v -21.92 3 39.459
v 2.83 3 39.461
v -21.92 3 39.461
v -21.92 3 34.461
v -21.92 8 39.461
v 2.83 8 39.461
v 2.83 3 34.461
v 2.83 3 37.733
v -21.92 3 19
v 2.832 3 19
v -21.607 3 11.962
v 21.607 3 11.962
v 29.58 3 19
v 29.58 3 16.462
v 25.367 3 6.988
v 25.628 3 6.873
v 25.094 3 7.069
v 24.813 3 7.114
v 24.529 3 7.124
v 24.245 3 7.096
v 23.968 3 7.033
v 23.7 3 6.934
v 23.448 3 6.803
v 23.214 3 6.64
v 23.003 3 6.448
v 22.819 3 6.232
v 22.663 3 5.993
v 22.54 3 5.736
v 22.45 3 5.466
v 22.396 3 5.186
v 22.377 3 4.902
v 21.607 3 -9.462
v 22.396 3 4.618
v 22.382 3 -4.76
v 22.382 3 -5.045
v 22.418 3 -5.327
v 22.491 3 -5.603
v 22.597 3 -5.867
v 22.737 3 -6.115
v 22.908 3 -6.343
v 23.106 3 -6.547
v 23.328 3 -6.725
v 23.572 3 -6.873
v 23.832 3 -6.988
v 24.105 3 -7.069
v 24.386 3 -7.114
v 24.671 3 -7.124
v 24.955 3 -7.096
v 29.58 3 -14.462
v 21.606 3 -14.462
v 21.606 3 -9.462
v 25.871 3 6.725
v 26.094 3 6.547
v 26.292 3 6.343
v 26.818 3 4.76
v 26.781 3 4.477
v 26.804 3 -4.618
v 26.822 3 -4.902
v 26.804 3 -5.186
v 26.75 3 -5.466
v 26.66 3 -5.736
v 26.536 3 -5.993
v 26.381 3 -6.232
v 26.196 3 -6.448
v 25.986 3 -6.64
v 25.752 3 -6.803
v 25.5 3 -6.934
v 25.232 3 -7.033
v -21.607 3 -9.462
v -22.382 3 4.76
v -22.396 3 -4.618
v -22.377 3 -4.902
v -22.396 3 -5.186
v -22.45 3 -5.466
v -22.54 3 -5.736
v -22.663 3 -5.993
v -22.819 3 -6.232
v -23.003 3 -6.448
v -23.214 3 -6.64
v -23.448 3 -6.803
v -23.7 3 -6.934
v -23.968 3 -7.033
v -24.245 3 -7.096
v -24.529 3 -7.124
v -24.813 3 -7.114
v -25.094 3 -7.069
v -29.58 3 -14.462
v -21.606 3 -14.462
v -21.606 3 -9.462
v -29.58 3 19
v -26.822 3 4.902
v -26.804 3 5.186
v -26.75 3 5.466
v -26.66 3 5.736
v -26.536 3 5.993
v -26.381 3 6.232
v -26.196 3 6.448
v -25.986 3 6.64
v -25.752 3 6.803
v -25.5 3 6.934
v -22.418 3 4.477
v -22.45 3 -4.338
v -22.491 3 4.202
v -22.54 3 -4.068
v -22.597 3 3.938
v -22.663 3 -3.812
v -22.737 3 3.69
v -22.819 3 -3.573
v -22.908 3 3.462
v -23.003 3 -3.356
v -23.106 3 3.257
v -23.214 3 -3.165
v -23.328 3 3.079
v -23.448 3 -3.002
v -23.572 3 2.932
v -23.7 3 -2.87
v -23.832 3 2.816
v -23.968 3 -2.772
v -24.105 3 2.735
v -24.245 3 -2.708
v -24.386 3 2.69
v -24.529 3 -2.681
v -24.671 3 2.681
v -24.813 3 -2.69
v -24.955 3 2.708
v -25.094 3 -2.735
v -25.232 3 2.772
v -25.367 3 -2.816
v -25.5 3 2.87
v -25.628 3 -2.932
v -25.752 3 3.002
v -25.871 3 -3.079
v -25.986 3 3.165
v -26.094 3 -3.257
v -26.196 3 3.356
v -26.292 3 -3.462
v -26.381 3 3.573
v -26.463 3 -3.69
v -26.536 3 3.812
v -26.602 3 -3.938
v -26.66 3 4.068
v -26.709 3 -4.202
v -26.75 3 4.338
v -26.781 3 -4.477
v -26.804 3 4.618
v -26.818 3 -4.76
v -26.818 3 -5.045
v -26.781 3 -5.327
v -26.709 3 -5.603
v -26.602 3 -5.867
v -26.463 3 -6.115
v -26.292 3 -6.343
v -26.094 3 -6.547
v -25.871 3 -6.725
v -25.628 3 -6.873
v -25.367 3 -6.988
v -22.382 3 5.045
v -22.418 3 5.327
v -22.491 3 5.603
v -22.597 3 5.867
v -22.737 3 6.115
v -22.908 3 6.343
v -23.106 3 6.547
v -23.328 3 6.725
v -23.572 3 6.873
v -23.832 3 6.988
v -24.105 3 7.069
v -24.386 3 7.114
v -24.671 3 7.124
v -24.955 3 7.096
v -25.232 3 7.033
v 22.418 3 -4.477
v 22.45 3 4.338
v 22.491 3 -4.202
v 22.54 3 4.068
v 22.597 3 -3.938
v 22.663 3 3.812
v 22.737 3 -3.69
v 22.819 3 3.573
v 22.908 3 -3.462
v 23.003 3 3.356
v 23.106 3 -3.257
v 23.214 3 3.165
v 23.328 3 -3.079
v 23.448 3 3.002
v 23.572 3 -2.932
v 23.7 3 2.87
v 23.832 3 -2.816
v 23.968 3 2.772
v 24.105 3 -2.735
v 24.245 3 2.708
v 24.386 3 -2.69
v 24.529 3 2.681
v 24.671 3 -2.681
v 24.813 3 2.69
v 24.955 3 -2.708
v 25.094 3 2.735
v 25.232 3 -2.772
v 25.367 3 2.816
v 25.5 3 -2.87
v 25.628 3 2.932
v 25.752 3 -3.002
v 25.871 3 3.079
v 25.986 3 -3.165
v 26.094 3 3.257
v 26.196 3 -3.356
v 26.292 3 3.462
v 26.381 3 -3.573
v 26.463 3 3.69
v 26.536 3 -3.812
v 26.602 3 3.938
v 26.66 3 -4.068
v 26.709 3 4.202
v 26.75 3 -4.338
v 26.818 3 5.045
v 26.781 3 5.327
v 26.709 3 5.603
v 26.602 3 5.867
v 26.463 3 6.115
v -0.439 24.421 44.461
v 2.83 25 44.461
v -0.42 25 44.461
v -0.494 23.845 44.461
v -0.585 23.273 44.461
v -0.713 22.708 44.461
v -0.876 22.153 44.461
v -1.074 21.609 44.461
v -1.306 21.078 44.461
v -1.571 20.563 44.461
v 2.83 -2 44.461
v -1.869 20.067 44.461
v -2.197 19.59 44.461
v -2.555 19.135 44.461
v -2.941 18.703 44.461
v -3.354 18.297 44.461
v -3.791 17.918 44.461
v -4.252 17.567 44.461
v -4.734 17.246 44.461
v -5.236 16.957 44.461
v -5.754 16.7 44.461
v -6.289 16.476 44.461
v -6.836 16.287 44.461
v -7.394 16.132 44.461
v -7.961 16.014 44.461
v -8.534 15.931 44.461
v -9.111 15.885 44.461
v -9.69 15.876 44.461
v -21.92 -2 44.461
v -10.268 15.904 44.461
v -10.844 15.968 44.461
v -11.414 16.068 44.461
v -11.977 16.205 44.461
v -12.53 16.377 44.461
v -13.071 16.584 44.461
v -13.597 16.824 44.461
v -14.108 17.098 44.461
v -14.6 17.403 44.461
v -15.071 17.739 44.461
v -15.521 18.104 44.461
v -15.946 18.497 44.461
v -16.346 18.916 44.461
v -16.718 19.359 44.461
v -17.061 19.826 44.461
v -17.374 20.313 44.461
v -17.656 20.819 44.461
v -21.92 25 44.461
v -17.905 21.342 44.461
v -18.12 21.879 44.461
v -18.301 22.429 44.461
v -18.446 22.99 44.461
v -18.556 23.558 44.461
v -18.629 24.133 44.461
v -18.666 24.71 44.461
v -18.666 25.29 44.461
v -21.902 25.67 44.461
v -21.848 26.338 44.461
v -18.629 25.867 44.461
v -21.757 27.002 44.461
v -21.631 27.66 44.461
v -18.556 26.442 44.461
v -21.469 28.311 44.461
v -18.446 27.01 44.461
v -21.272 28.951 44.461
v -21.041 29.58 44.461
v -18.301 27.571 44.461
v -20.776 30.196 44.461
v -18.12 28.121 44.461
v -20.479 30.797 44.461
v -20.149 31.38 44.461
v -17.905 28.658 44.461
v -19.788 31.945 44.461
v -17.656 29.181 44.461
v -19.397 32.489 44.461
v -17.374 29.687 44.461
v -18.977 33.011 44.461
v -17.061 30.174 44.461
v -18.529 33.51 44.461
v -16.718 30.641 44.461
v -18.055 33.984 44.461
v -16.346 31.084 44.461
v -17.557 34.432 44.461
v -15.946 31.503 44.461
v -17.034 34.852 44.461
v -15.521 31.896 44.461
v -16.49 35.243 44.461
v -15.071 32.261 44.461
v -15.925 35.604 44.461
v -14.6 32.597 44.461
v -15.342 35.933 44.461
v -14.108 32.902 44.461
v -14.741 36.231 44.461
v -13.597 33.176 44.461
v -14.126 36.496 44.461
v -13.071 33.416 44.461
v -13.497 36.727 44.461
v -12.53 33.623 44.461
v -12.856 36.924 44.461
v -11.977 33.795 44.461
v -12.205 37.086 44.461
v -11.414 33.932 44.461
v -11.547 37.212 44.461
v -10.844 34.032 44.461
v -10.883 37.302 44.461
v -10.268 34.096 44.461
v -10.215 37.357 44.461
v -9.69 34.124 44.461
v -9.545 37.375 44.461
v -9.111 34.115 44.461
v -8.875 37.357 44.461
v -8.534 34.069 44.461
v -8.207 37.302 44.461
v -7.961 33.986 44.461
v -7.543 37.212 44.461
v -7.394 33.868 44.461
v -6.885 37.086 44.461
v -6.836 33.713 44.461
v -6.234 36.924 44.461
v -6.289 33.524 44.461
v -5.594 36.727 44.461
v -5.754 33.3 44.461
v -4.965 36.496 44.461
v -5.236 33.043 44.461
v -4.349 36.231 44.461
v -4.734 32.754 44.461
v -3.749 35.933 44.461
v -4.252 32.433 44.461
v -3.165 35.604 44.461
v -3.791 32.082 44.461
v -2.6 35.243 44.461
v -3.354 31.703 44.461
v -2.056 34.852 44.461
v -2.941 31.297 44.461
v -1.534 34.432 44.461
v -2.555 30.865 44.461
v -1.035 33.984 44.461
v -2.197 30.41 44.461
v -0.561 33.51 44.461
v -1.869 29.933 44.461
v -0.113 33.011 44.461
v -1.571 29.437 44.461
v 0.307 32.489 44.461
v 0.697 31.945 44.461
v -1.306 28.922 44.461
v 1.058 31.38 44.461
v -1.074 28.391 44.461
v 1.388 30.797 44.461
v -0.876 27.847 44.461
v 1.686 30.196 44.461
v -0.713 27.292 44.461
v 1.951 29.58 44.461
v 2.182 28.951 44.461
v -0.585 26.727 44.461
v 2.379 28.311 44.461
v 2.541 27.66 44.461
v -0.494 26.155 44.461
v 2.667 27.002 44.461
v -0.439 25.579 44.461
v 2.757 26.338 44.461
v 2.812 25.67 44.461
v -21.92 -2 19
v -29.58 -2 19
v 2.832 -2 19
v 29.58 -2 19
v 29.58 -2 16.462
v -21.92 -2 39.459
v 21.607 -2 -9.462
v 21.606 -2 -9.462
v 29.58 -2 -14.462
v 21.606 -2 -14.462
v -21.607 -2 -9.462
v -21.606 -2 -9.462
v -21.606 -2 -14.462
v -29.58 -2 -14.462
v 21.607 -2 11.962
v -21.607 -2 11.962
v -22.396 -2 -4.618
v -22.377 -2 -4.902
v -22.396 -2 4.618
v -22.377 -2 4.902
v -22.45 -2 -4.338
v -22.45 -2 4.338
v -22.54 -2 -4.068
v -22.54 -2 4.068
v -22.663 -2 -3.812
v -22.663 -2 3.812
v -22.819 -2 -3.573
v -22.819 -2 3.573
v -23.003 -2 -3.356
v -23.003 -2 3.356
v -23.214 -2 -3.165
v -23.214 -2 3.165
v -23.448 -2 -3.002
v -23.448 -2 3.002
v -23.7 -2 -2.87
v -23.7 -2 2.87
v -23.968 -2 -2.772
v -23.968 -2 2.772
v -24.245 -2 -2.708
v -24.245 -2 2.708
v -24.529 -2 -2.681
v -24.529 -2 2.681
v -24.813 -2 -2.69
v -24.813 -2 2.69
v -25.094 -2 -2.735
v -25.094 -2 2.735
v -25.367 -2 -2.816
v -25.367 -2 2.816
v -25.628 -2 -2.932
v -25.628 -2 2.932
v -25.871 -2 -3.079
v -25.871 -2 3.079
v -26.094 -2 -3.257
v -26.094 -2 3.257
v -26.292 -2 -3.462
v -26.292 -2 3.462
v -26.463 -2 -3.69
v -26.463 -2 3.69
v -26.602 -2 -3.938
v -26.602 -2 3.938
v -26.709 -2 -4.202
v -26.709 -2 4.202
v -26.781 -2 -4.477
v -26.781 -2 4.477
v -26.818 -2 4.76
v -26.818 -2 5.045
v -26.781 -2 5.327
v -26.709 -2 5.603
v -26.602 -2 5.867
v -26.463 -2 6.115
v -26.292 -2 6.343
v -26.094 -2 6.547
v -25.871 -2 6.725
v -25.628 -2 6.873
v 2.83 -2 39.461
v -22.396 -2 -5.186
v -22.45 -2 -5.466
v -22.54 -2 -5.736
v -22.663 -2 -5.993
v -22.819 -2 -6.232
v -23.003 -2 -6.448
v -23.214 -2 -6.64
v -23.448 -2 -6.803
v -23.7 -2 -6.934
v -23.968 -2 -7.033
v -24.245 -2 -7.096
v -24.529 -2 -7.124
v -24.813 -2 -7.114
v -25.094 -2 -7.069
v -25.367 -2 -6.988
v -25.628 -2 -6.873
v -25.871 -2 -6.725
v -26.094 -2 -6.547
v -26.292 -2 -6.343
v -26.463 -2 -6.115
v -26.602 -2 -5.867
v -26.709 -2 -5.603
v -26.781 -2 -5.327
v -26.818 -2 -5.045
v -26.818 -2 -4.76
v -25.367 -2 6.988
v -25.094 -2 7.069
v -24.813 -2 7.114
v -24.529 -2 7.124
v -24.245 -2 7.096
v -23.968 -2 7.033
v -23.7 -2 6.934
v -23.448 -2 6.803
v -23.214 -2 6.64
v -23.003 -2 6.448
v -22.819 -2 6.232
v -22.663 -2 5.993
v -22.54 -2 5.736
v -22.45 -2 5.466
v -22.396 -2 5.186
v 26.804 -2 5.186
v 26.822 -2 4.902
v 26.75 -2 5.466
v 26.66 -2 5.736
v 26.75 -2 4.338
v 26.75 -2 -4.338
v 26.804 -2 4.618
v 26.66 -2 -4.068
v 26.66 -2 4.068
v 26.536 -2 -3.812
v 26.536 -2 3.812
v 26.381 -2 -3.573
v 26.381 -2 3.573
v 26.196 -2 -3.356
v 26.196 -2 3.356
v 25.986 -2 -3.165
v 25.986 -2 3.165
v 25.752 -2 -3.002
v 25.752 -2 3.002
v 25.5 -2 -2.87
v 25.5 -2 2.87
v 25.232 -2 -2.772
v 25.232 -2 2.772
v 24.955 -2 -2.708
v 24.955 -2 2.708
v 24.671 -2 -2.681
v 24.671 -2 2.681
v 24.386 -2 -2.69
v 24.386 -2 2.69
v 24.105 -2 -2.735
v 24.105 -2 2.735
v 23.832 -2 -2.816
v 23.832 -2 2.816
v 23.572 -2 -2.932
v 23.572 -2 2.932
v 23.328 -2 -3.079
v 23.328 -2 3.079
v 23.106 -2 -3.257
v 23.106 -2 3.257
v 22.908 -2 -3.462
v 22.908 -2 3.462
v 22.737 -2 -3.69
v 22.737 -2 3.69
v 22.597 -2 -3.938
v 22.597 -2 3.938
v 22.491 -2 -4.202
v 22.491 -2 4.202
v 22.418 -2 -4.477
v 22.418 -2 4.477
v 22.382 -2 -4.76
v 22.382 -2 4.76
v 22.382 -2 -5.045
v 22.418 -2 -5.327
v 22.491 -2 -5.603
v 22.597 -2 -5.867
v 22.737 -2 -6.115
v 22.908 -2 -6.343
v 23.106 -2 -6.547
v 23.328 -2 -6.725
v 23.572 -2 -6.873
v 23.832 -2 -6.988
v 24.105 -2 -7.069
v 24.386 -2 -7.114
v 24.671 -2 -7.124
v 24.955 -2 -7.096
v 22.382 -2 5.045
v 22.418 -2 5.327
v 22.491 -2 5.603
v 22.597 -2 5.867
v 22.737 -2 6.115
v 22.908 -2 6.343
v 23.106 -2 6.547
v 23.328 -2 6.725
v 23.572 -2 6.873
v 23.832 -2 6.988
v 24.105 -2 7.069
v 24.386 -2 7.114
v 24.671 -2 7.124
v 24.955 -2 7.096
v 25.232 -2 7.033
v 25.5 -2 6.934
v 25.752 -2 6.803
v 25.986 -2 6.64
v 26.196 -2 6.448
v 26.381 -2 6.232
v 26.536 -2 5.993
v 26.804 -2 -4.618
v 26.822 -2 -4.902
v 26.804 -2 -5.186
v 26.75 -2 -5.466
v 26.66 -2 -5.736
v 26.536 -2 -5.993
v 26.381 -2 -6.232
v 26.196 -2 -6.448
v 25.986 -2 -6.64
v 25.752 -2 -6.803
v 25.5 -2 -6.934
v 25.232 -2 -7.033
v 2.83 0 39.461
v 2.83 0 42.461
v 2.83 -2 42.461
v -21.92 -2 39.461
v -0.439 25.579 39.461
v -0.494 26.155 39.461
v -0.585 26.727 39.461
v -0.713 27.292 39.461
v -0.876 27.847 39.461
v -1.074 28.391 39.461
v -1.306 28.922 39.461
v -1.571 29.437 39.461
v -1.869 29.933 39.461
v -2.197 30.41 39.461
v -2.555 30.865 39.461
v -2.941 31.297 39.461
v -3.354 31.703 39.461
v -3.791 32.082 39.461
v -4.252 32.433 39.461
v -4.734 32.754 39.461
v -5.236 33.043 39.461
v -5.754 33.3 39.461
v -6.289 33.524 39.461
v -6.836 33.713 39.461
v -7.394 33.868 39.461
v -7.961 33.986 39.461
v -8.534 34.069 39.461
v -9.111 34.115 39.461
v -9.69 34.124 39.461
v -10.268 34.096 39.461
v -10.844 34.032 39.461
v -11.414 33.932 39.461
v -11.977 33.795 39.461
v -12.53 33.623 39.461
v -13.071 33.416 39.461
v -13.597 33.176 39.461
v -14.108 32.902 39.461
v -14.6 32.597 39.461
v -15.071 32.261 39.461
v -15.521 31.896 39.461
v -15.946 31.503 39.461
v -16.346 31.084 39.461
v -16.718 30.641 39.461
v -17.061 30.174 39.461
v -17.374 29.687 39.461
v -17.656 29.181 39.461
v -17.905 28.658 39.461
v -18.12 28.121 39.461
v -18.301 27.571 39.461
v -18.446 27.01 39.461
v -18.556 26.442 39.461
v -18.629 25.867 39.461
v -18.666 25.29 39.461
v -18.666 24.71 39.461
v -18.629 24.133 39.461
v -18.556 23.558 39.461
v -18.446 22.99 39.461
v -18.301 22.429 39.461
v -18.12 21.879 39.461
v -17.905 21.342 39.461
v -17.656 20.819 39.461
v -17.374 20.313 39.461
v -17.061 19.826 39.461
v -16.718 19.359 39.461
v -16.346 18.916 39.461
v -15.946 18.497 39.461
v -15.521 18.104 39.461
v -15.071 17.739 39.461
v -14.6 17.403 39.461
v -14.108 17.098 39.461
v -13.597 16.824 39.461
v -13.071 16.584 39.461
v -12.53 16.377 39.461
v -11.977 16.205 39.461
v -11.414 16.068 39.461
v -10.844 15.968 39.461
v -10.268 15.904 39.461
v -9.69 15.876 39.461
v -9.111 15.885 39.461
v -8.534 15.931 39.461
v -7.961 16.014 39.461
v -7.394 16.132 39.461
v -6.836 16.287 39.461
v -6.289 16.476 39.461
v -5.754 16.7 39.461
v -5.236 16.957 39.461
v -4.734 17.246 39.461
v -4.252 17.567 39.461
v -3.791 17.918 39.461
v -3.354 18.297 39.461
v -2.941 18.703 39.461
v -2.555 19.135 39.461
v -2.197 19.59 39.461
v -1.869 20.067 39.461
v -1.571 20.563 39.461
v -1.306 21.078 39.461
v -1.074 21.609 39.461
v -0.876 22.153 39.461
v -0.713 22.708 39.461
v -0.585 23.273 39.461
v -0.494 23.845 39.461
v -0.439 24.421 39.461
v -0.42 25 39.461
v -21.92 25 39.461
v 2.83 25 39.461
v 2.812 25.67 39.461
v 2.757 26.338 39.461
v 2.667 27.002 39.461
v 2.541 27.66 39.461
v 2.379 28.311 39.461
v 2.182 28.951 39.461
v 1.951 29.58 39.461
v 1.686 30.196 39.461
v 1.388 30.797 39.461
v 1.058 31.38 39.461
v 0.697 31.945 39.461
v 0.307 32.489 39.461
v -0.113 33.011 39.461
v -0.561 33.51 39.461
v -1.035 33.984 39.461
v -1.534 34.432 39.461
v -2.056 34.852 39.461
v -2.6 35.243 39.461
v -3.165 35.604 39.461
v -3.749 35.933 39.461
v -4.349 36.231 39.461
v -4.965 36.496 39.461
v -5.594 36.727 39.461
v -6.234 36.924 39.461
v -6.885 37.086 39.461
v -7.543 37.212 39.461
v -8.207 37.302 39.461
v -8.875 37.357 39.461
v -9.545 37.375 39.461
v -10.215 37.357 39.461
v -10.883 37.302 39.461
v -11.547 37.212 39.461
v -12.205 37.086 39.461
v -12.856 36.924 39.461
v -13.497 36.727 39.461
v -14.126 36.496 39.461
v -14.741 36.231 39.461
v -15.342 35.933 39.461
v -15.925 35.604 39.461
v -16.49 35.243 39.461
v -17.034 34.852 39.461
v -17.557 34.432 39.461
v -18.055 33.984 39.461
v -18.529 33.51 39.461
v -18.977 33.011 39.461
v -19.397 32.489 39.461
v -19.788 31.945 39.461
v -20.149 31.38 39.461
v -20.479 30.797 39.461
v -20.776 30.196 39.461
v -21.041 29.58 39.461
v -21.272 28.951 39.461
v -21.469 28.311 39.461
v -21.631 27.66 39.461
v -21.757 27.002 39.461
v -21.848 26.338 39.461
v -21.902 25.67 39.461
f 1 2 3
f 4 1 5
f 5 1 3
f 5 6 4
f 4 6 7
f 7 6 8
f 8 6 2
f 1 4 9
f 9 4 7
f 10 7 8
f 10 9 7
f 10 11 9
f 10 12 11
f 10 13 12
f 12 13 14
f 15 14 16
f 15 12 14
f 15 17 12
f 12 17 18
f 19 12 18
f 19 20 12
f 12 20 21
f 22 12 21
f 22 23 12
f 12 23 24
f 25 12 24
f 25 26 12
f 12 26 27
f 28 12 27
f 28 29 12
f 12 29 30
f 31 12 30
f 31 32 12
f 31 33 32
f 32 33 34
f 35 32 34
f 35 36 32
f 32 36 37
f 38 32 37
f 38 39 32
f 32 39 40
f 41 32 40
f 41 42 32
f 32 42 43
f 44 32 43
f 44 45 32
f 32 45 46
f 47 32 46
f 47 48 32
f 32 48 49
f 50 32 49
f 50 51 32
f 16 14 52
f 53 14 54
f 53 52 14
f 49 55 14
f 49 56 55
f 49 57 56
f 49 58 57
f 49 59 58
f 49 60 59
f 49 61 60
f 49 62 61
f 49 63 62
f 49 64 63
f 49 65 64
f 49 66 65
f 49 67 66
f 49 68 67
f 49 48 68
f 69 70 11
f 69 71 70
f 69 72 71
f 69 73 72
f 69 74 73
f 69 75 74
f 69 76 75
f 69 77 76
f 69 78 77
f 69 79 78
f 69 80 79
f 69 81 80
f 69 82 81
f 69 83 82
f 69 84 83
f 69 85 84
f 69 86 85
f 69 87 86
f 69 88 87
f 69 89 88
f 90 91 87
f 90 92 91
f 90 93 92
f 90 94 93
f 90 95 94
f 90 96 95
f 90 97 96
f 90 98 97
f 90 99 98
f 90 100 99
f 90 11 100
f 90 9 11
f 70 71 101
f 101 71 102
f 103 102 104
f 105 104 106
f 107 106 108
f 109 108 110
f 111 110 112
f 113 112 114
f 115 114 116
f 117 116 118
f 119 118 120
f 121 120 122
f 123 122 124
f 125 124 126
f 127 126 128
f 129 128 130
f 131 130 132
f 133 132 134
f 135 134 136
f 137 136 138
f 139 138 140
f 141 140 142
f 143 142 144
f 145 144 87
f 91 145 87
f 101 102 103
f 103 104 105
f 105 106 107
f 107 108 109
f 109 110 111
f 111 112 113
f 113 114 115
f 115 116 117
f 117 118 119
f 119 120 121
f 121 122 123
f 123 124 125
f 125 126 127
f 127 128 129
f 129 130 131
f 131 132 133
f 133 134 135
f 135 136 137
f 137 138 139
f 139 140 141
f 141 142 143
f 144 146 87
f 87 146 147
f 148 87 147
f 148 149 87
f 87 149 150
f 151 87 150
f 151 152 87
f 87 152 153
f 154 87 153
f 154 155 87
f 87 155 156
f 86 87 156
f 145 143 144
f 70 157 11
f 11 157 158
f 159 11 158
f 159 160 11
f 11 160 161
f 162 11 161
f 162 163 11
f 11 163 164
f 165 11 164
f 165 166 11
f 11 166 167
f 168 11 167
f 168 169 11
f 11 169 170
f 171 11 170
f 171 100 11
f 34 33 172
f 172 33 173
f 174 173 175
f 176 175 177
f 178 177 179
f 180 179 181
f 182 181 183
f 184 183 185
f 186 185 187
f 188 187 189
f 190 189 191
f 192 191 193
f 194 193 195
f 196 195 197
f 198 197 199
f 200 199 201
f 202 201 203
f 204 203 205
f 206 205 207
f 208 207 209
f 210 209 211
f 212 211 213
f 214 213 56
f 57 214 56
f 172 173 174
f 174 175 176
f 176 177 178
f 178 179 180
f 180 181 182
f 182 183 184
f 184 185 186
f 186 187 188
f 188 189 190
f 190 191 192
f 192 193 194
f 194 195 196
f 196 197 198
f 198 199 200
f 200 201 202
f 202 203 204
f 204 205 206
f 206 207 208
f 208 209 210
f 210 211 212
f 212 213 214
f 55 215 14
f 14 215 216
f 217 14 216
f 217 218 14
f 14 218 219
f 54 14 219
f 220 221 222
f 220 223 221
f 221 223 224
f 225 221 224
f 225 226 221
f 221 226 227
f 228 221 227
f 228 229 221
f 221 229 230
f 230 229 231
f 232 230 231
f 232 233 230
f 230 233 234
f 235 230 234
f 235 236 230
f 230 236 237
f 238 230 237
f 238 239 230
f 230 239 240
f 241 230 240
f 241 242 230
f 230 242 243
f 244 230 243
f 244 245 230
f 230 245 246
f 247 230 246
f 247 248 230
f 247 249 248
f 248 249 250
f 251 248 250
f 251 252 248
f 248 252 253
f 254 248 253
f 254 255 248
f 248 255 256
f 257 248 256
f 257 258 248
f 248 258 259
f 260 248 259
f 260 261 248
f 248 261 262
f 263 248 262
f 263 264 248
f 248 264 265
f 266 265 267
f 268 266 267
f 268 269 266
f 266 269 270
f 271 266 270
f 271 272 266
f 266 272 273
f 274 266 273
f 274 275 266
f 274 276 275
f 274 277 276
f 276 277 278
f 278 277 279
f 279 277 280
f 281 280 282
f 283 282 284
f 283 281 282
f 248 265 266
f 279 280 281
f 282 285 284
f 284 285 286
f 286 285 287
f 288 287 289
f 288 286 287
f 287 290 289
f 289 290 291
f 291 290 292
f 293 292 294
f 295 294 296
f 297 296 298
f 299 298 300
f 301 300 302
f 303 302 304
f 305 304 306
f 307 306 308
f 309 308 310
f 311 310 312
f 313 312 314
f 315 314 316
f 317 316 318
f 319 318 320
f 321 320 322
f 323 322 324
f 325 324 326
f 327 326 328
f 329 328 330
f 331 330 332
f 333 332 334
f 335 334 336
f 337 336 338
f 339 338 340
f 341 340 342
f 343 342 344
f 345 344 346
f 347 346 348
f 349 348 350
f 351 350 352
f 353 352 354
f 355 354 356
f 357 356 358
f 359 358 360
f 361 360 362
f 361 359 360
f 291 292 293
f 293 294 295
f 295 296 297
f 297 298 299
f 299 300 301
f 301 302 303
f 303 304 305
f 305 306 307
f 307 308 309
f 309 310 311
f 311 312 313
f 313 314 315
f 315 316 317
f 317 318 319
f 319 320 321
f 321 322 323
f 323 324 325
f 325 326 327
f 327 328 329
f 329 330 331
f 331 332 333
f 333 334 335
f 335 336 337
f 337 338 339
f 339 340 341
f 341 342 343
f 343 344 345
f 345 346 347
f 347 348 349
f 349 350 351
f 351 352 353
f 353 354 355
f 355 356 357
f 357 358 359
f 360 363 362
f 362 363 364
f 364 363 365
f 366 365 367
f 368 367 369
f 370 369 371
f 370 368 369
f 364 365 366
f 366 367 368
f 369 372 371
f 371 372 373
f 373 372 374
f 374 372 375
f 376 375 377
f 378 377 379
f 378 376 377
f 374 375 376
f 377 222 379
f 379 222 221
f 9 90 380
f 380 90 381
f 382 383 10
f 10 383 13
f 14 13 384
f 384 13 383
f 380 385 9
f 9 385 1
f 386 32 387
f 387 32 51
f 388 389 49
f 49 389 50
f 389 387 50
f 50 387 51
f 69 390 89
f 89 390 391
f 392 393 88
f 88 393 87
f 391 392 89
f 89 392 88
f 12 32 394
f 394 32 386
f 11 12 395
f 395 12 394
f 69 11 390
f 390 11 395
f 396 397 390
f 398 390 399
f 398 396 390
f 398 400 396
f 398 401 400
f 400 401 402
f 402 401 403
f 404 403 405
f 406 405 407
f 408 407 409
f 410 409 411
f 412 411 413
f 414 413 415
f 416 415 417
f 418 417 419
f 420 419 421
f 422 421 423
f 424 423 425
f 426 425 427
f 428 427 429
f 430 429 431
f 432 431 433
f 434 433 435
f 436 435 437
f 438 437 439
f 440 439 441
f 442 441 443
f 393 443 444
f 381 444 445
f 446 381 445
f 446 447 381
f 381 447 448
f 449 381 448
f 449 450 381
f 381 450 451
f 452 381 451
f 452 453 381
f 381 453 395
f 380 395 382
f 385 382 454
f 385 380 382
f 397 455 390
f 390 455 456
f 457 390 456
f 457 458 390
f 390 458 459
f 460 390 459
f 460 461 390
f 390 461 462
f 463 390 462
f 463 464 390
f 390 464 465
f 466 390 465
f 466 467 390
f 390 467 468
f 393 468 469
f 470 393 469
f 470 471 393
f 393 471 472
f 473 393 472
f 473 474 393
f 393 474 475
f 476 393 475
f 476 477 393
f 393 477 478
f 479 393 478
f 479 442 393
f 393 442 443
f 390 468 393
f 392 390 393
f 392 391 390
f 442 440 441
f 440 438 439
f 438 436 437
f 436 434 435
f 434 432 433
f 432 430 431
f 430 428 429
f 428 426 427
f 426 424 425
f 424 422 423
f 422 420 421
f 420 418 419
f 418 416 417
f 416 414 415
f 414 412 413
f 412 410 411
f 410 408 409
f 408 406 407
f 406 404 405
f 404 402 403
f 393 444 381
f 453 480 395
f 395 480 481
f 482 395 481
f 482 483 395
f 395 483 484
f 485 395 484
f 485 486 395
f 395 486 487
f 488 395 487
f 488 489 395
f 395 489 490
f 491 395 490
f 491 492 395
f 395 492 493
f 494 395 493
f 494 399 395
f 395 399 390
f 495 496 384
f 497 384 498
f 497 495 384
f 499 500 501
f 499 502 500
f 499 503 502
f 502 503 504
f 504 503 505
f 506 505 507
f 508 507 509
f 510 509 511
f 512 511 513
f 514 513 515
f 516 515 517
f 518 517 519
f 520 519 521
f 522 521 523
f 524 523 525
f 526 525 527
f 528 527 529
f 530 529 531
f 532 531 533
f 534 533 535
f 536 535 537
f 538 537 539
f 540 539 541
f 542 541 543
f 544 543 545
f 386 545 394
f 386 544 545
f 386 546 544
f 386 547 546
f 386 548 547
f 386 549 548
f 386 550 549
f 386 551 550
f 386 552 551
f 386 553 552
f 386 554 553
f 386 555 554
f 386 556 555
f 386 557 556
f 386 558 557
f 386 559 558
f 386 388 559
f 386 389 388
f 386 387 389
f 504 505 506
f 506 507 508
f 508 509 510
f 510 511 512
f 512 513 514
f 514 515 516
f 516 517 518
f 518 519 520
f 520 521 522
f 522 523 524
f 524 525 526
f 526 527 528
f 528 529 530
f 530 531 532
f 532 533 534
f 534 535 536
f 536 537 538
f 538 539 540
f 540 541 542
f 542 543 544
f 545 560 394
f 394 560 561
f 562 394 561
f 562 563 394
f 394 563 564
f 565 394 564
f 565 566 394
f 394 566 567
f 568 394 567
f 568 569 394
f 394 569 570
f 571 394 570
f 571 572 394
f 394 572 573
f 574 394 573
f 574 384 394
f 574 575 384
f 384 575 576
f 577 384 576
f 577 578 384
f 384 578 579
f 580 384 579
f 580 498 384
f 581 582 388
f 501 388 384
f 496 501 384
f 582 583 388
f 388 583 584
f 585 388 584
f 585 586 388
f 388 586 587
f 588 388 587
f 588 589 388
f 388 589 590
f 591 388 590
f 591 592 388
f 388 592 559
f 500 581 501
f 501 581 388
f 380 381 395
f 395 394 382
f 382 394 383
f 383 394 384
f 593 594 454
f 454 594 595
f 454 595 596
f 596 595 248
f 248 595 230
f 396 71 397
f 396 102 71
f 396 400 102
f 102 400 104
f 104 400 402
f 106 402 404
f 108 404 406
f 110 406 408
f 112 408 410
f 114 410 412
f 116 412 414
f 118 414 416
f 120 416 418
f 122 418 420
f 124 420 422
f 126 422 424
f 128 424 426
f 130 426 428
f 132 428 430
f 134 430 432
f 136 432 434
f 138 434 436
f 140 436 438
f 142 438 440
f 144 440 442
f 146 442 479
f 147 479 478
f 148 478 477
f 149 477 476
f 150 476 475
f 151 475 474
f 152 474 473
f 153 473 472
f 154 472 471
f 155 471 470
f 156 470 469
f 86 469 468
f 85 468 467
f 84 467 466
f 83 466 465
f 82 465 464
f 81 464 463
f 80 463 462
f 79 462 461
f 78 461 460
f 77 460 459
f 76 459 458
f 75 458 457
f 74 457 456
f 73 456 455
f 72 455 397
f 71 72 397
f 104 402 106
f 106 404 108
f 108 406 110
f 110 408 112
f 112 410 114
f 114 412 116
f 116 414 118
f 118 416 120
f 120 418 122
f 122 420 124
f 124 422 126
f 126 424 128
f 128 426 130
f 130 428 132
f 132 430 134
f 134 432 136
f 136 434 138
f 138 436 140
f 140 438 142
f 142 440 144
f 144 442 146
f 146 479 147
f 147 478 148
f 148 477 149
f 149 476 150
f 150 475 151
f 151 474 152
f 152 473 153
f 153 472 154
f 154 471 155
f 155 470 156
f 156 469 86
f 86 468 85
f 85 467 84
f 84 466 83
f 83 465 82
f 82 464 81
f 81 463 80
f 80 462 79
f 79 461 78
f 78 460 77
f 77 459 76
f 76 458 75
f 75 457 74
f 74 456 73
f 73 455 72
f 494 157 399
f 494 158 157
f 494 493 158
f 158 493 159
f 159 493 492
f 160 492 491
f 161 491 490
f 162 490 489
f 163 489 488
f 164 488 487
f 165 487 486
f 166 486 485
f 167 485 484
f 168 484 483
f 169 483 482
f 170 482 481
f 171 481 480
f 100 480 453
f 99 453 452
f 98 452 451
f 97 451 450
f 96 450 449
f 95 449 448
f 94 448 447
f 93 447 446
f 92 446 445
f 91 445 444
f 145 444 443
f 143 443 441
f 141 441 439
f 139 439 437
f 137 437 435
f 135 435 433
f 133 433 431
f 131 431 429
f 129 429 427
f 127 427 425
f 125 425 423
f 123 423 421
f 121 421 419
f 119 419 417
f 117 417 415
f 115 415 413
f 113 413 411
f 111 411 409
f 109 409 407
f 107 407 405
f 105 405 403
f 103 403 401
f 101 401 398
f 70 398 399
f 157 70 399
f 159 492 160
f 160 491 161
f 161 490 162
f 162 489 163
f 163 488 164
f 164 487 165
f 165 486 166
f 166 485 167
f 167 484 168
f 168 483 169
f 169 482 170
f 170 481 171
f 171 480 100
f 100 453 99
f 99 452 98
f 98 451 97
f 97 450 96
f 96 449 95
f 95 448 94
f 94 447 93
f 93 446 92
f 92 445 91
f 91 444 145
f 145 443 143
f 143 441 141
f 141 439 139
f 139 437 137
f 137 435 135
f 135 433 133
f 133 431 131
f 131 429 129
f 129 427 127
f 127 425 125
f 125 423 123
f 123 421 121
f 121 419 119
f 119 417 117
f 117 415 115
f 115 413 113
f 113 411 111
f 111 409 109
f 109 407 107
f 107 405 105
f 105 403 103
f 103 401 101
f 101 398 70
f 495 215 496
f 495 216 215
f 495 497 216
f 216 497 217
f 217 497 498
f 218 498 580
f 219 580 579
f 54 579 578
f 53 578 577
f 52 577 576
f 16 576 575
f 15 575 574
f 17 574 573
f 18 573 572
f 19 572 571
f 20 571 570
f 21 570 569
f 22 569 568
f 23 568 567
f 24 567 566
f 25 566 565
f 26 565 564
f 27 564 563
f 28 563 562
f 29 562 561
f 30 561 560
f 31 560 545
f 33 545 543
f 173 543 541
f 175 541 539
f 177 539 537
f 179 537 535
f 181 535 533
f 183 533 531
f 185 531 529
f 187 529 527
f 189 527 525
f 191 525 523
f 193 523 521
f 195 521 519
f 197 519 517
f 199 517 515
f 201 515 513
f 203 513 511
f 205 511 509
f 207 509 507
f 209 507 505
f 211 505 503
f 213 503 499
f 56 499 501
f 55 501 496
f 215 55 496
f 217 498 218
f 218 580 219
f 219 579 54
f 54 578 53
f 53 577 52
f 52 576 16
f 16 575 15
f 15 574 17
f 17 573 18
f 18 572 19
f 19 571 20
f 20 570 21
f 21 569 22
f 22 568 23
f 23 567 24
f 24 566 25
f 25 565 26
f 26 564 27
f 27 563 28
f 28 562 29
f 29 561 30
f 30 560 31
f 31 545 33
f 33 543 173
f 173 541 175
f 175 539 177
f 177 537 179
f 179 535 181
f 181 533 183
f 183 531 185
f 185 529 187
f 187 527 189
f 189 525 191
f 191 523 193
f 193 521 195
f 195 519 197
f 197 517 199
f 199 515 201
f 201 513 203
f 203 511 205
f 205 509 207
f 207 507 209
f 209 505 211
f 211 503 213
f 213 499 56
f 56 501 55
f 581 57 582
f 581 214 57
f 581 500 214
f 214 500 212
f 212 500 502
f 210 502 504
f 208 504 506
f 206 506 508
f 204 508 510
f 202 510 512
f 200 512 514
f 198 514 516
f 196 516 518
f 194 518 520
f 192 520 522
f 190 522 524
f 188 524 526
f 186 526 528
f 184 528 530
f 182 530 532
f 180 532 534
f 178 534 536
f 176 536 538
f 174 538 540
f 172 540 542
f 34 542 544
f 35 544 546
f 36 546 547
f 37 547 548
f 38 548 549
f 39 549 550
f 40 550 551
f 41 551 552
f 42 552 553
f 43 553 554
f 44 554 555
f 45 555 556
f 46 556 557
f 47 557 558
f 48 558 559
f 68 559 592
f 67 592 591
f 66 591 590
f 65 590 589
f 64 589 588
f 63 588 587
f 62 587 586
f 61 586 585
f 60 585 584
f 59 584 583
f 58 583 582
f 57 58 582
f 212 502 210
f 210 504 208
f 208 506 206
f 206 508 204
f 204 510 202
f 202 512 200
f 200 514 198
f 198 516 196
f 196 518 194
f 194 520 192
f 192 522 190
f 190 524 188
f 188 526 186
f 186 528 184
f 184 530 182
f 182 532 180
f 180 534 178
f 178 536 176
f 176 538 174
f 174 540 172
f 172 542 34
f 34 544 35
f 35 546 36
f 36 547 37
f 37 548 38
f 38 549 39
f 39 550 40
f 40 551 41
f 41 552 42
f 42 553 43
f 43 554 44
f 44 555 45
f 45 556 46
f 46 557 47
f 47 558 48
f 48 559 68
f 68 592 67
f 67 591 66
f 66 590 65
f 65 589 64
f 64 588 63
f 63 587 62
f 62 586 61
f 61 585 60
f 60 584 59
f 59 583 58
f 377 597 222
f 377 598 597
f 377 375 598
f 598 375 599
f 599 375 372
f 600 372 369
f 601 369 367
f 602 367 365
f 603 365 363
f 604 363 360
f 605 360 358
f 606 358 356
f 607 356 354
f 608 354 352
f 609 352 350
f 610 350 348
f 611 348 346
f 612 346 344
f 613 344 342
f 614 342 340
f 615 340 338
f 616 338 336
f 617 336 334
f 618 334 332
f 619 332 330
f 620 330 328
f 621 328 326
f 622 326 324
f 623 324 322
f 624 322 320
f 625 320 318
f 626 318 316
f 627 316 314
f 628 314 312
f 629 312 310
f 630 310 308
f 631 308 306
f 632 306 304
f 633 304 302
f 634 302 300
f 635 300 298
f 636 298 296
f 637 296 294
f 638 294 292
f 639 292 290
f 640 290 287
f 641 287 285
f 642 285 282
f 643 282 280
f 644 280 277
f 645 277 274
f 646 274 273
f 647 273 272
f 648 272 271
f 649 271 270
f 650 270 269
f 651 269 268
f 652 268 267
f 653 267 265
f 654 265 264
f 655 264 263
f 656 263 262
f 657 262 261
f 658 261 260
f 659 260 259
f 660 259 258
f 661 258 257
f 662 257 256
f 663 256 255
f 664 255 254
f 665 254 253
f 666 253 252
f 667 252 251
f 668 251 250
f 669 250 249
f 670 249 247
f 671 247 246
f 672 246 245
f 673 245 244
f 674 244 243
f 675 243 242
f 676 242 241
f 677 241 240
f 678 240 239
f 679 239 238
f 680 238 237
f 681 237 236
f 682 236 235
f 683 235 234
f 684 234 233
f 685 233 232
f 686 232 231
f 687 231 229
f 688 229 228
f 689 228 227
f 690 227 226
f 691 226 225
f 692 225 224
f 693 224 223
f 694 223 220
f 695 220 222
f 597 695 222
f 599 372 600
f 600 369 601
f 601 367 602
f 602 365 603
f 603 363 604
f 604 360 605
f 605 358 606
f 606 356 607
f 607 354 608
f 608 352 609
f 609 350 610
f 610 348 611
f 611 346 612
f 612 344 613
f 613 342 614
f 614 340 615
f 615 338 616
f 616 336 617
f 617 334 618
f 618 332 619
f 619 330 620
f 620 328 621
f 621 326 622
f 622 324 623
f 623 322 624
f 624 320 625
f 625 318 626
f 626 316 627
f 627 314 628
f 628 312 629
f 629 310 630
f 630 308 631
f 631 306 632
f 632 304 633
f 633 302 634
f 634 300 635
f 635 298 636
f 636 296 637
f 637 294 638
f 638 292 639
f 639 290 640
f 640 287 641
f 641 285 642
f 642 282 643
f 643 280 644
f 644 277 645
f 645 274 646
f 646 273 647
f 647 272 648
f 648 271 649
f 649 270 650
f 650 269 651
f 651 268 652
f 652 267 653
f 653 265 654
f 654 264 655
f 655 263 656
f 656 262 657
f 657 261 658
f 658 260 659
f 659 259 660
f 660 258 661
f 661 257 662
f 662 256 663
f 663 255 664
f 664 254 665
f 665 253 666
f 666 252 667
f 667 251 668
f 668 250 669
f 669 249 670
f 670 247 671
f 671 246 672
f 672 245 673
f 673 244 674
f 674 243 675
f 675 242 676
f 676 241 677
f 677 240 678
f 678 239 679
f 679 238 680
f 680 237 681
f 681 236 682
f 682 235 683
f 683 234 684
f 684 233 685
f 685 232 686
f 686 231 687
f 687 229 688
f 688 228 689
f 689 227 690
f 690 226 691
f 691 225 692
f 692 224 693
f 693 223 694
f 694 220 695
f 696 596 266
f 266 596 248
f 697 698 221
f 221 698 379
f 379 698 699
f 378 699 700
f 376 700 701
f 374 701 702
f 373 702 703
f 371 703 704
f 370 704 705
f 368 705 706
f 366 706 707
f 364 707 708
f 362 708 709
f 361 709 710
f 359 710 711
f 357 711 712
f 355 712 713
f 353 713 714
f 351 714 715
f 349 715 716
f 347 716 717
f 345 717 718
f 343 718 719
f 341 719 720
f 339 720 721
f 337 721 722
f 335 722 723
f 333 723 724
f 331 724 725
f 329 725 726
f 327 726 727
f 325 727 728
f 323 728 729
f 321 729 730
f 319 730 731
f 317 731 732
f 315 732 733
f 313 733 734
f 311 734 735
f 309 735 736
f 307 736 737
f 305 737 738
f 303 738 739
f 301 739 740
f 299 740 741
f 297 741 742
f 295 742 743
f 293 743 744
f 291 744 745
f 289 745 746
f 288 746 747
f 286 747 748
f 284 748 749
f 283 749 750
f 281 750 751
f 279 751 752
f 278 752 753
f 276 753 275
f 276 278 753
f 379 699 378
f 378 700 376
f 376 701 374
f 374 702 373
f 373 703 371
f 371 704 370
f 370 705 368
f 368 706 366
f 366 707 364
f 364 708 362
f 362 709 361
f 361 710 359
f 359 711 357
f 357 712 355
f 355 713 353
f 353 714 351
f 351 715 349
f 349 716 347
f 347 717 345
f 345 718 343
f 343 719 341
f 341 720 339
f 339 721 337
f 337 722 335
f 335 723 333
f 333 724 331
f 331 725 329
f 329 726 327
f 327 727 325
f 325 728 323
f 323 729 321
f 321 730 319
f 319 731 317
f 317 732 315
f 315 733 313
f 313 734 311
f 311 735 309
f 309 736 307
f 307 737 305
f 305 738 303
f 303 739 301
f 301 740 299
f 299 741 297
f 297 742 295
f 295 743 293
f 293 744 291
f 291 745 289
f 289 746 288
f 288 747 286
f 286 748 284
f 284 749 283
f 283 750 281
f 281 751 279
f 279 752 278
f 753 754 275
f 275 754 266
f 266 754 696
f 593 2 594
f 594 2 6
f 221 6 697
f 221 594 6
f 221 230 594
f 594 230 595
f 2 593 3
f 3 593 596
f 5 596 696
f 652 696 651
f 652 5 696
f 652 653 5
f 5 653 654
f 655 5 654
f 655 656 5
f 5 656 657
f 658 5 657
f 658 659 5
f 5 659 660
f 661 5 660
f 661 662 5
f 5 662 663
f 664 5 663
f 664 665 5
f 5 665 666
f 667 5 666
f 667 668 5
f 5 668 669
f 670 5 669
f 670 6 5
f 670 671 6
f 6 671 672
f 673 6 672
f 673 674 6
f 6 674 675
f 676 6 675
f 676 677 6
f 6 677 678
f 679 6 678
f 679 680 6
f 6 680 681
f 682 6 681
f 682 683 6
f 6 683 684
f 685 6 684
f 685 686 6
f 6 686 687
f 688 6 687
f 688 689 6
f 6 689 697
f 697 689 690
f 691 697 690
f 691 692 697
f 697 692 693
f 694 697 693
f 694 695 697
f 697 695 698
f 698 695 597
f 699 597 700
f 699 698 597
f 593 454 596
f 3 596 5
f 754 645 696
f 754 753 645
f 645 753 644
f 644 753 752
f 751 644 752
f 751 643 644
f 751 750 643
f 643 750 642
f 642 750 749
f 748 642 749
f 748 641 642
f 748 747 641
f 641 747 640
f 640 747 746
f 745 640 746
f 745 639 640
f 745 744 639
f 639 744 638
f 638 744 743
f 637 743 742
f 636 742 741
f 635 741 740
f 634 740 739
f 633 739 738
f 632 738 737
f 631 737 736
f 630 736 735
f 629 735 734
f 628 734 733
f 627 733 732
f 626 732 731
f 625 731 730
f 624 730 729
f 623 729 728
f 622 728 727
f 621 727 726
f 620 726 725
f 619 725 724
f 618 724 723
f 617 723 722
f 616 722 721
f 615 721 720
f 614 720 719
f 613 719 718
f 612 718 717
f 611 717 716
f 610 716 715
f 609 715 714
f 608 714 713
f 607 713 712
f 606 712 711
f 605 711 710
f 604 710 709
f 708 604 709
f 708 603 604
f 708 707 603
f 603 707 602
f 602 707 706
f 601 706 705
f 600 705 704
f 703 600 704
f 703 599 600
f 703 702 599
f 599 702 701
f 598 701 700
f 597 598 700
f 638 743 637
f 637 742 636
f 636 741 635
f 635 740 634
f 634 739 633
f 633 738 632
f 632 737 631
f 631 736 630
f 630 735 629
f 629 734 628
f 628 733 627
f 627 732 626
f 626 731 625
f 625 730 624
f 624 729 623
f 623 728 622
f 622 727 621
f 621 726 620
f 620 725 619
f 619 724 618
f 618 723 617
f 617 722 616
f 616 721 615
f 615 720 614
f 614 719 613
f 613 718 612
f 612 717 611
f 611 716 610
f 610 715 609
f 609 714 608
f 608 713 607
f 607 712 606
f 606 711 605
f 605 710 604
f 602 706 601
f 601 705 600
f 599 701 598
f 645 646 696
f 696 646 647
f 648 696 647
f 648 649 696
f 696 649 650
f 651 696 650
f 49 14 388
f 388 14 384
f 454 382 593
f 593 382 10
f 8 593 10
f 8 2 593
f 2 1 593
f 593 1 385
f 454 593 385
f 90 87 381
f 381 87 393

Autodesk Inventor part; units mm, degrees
ref_plane "XZ Plane" through (0, 0, 0) normal (0, 1, 0) x (-1, 0, 0)
sketch "Sketch1" plane through (0, 0, 0) normal (0, 1, 0) x (-1, 0, 0)
  circle A0 centre (24.5999, -4.9022) radius 2.2225
  line L0 (26.4238, -3.6322) -> (26.6065, -3.6322)
  circle A1 centre (24.5999, 4.9022) radius 2.2225
  line L1 (26.6196, 9.4615) -> (23.1196, 9.4615)
  line L2 (26.6065, -9.4615) -> (20.6065, -9.4615)
  line L3 (26.4238, -6.1722) -> (26.6065, -6.1722)
  line L4 (23.1196, 9.4615) -> (23.1196, 14.4615)
  line L5 (-26.4238, -3.6322) -> (-26.6065, -3.6322)
  line L6 (-26.4238, -6.1722) -> (-26.6065, -6.1722)
  line L7 (-26.6065, -9.4615) -> (-20.6065, -9.4615)
  circle A2 centre (-24.5999, -4.9022) radius 2.2225
  circle A3 centre (-24.5999, 4.9022) radius 2.2225
  line L8 (-26.6196, 9.4615) -> (-23.1196, 9.4615)
  line L9 (-23.1196, 9.4615) -> (-23.1196, 14.4615)
  line L10 (20.6065, 10.9615) -> (-20.6065, 10.9615)
  line L11 (23.1196, 14.4615) -> (21.9202, 14.4615)
  line L12 (-12.375, 14.4615) -> (-23.1196, 14.4615)
  line L13 (21.9202, 14.4593) -> (21.9202, 39.4593)
  line L14 (21.9202, 14.4593) -> (46.9202, 14.4593) construction
  line L15 (21.9202, 39.4593) -> (-2.8298, 39.4615)
  line L16 (-2.8298, 39.4615) -> (-2.832, 14.4615)
  line L17 (-2.832, 14.4615) -> (-12.375, 14.4615)
  line L18 (-26.6196, 9.4615) -> (-29.5802, 9.4615)
  line L19 (-29.5802, 9.4615) -> (-29.5802, -9.4615)
  line L20 (-29.5802, -9.4615) -> (-26.6065, -9.4615)
  line L21 (26.6196, 9.4615) -> (29.5802, 9.4615)
  line L22 (29.5802, 9.4615) -> (29.5802, -9.4615)
  line L23 (29.5802, -9.4615) -> (26.6065, -9.4615)
  line L24 (-20.6065, -9.4615) -> (-20.6065, 10.9615)
  line L25 (20.6065, -9.4615) -> (20.6065, 10.9615)
  point P0 (-26.4238, 3.6322)
  point P1 (0, 0)
  point P2 (9.5452, 14.4593)
  dimension "d38" = 90
  dimension "d39" = 24.75
  dimension "d41" = 90
  dimension "d43" = 4.9803
  dimension "d45" = 4.9803
extrude "Extrusion1" add sketch "Sketch1" along normal blind 3 contours A0 | A1 | L21 L22 L23 L2 L25 L10 L24 L7 L20 L19 L18 L8 L9 L12 L17 L16 L15 L13 L11 L4 L1 | A2 | A3
ref_plane "Work Plane1" through (0, 0, 39.4615) normal (0, 0, 1) x (1, 0, 0)
sketch "Sketch2" plane through (0, 0, 39.4615) normal (0, 0, 1) x (1, 0, 0)
  circle A0 centre (-9.5452, 25) radius 9.125
  line L0 (-21.9202, 0) -> (2.8298, 0)
  arc A1 (2.8298, 25) -> (-21.9202, 25) centre (-9.5452, 25) ccw
  line L1 (2.8298, 0) -> (2.8298, 25)
  line L2 (-21.9202, 0) -> (-21.9202, 25)
  point P0 (0, 0)
  point P1 (-9.5452, 0)
  dimension "d23" = 18.25
  dimension "d24" = 24.75
  dimension "d25" = 24.75
  dimension "d26" = 25
  dimension "d27" = 25
extrude "Extrusion2" add sketch "Sketch2" along normal blind 3
extrude "Extrusion3" cut sketch "Sketch1" along normal up to next contours A0 | A1 | A2 | A3
sketch "Sketch3" plane through (0, 0, 0) normal (0, -1, 0) x (1, 0, 0)
  circle A0 centre (-24.5999, -4.9022) radius 2.2225 projected
  circle A1 centre (-24.5999, 4.9022) radius 2.2225 projected
  circle A2 centre (24.5999, 4.9022) radius 2.2225 projected
  circle A3 centre (24.5999, -4.9022) radius 2.2225 projected
  line L0 (-29.5802, -9.4615) -> (-20.6065, -9.4615) projected
  line L1 (-20.6065, -9.4615) -> (-20.6065, 10.9615) projected
  line L2 (-20.6065, 10.9615) -> (20.6065, 10.9615) projected
  line L3 (20.6065, 10.9615) -> (20.6065, -9.4615) projected
  line L4 (20.6065, -9.4615) -> (29.5802, -9.4615) projected
  line L5 (29.5802, -9.4615) -> (29.5802, 9.4615) projected
  line L6 (29.5802, 9.4615) -> (23.1196, 9.4615) projected
  line L7 (23.1196, 9.4615) -> (23.1196, 14.4615) projected
  line L8 (23.1196, 14.4615) -> (2.832, 14.4615) projected
  line L9 (2.832, 14.4615) -> (2.8298, 39.4615) projected
  line L10 (2.8298, 39.4615) -> (-21.9202, 39.4593) projected
  line L11 (-21.9202, 39.4593) -> (-21.9202, 14.4615) projected
  line L12 (-21.9202, 14.4615) -> (-23.1196, 14.4615) projected
  line L13 (-23.1196, 14.4615) -> (-23.1196, 9.4615) projected
  line L14 (-23.1196, 9.4615) -> (-29.5802, 9.4615) projected
  line L15 (-29.5802, 9.4615) -> (-29.5802, -9.4615) projected
  line L16 (-21.9202, 39.4615) -> (2.8298, 39.4615) projected
  line L17 (2.8298, 39.4615) -> (2.8298, 42.4615) projected
  line L18 (-21.9202, 42.4615) -> (2.8298, 42.4615) projected
  line L19 (-21.9202, 39.4615) -> (-21.9202, 42.4615) projected
  point P0 (0, 0)
extrude "Extrusion4" add sketch "Sketch3" along normal blind 2
sketch "Sketch4" plane through (0, -2, 0) normal (0, -1, 0) x (1, 0, 0)
  circle A0 centre (24.5999, -4.9022) radius 2.2225 projected
  circle A1 centre (24.5999, 4.9022) radius 2.2225 projected
  circle A2 centre (-24.5999, 4.9022) radius 2.2225 projected
  circle A3 centre (-24.5999, -4.9022) radius 2.2225 projected
  line L0 (-29.5802, -9.4615) -> (-20.6065, -9.4615) projected
  line L1 (-20.6065, -9.4615) -> (-20.6065, 10.9615) projected
  line L2 (-20.6065, 10.9615) -> (20.6065, 10.9615) projected
  line L3 (20.6065, 10.9615) -> (20.6065, -9.4615) projected
  line L4 (20.6065, -9.4615) -> (29.5802, -9.4615) projected
  line L5 (29.5802, -9.4615) -> (29.5802, 9.4615) projected
  line L6 (29.5802, 9.4615) -> (23.1196, 9.4615) projected
  line L7 (23.1196, 9.4615) -> (23.1196, 14.4615) projected
  line L8 (23.1196, 14.4615) -> (2.832, 14.4615) projected
  line L9 (2.832, 14.4615) -> (2.8298, 39.4615) projected
  line L10 (2.8298, 39.4615) -> (-21.9202, 39.4593) projected
  line L11 (-21.9202, 39.4593) -> (-21.9202, 14.4615) projected
  line L12 (-21.9202, 14.4615) -> (-23.1196, 14.4615) projected
  line L13 (-23.1196, 14.4615) -> (-23.1196, 9.4615) projected
  line L14 (-23.1196, 9.4615) -> (-29.5802, 9.4615) projected
  line L15 (-29.5802, 9.4615) -> (-29.5802, -9.4615) projected
  line L16 (2.832, 14.4615) -> (23.1196, 14.4615)
  line L17 (23.1196, 14.4615) -> (23.1196, 16.4615)
  line L18 (23.1196, 16.4615) -> (2.832, 16.4615)
  line L19 (2.832, 16.4615) -> (2.832, 14.4615)
  line L20 (-21.9202, 14.4615) -> (-23.1196, 14.4615)
  line L21 (-23.1196, 14.4615) -> (-23.1196, 16.4615)
  line L22 (-23.1196, 16.4615) -> (-21.9202, 16.4615)
  line L23 (-21.9202, 16.4615) -> (-21.9202, 14.4615)
  point P0 (0, 0)
  dimension "d52" = 2
  dimension "d53" = 2
extrude "Extrusion5" add sketch "Sketch4" against normal blind 5 contours L21 L22 L11 L12 | L8 L9 L18 L17
sketch "Sketch5" plane through (0, -2, 0) normal (0, -1, 0) x (1, 0, 0)
  line L0 (20.6065, 10.9615) -> (-20.6065, 10.9615)
  line L1 (-20.6065, 10.9615) -> (-20.6065, 11.9615)
  line L2 (-20.6065, 11.9615) -> (20.6065, 11.9615)
  line L3 (20.6065, 11.9615) -> (20.6065, 10.9615)
  point P0 (0, 0)
  dimension "d56" = 1
extrude "Extrusion6" cut sketch "Sketch5" against normal up to next
sketch "Sketch6" plane through (0, -2, 0) normal (0, -1, 0) x (1, 0, 0)
  line L0 (21.6065, 11.9615) -> (-21.6065, 11.9615)
  line L1 (-21.6065, 11.9615) -> (-21.6065, -9.4615)
  line L2 (-21.6065, -9.4615) -> (21.6065, -9.4615)
  line L3 (21.6065, -9.4615) -> (21.6065, 11.9615)
  line L4 (20.6065, 11.9615) -> (20.6065, -9.4615) projected
  line L5 (-20.6065, -9.4615) -> (-20.6065, 11.9615) projected
  line L6 (-20.6065, 11.9615) -> (20.6065, 11.9615) projected
  point P0 (0, 0)
  dimension "d59" = 1
  dimension "d60" = 1
  dimension "d61" = 0
extrude "Extrusion7" cut sketch "Sketch6" against normal up to next
sketch "Sketch7" plane through (0, -2, 0) normal (0, -1, 0) x (1, 0, 0)
  line L0 (-23.1196, 9.4615) -> (-29.5802, 9.4615)
  line L1 (-29.5802, 9.4615) -> (-29.5802, 16.4615)
  line L2 (-29.5802, 16.4615) -> (-23.1196, 16.4615)
  line L3 (-23.1196, 16.4615) -> (-23.1196, 9.4615)
  line L4 (23.1196, 9.4615) -> (29.5802, 9.4615)
  line L5 (29.5802, 9.4615) -> (29.5802, 16.4615)
  line L6 (29.5802, 16.4615) -> (23.1196, 16.4615)
  line L7 (23.1196, 16.4615) -> (23.1196, 9.4615)
  point P0 (0, 0)
  dimension "d64" = 7
  dimension "d65" = 6.4606
extrude "Extrusion8" add sketch "Sketch7" against normal blind 5
sketch "Sketch8" plane through (0, -2, 0) normal (0, -1, 0) x (1, 0, 0)
  line L0 (-29.5802, -9.4615) -> (-21.6062, -9.4615)
  line L1 (-21.6062, -9.4615) -> (-21.6062, -14.4615)
  line L2 (-21.6062, -14.4615) -> (-29.5802, -14.4615)
  line L3 (-29.5802, -14.4615) -> (-29.5802, -9.4615)
  point P0 (0, 0)
  dimension "d68" = 7.974
  dimension "d69" = 5
extrude "Extrusion9" add sketch "Sketch8" against normal blind 5
mirror "Mirror1" about plane through (0, 0, 0) normal (1, 0, 0) of "Extrusion9"
sketch "Sketch9" plane through (0, -2, 0) normal (0, -1, 0) x (1, 0, 0)
  line L0 (-29.5802, -14.4615) -> (-29.5802, 16.4615) projected
  line L1 (-29.5802, 12) -> (29.5798, 12)
  line L2 (29.5798, 12) -> (29.5798, 19)
  line L3 (29.5798, 19) -> (-29.5802, 19)
  line L4 (-29.5802, 19) -> (-29.5802, 12)
  point P0 (0, 0)
  dimension "d72" = 59.16
extrude "Extrusion10" add sketch "Sketch9" against normal blind 5
sketch "Sketch10" plane through (0, 0, 42.4615) normal (0, 0, 1) x (1, 0, 0)
  circle A0 centre (-9.5452, 25) radius 9.125 projected
  line L0 (2.8298, 0) -> (2.8298, 25) projected
  arc A1 (2.8298, 25) -> (-21.9202, 25) centre (-9.5452, 25) ccw projected
  line L1 (-21.9202, 25) -> (-21.9202, -2) projected
  line L2 (2.8298, -2) -> (-21.9202, -2) projected
  line L3 (2.8298, 0) -> (2.8298, -2) projected
  point P0 (0, 0)
extrude "Extrusion11" add sketch "Sketch10" along normal blind 2
ref_plane "Work Plane2" through (-9.545, 0, 0) normal (1, 0, 0) x (0, 1, 0)
sketch "Sketch12" plane through (-9.545, 0, 0) normal (1, 0, 0) x (0, 1, 0)
  line L0 (3, 39.4615) -> (8, 39.4615)
  line L1 (8, 39.4615) -> (3, 34.4615)
  line L2 (3, 34.4615) -> (3, 39.4615)
  line L3 (3, 39.4615) -> (8, 39.4615)
  line L4 (3, 39.4615) -> (25, 39.4615) projected
  point P0 (0, 0)
  dimension "d79" = 5
  dimension "d80" = 45
  dimension "d83" = 5
extrude "Extrusion12" add sketch "Sketch12" along normal mid plane 24.75
equation "\"d43\" = d42"
equation "\"d45\" = d44"
equation "\"d27\" = d26"
equation "\"d44\" = 4.980307"
equation "\"d42\" = 4.980307"
properties part number "Dudukan Proximity Servo"
